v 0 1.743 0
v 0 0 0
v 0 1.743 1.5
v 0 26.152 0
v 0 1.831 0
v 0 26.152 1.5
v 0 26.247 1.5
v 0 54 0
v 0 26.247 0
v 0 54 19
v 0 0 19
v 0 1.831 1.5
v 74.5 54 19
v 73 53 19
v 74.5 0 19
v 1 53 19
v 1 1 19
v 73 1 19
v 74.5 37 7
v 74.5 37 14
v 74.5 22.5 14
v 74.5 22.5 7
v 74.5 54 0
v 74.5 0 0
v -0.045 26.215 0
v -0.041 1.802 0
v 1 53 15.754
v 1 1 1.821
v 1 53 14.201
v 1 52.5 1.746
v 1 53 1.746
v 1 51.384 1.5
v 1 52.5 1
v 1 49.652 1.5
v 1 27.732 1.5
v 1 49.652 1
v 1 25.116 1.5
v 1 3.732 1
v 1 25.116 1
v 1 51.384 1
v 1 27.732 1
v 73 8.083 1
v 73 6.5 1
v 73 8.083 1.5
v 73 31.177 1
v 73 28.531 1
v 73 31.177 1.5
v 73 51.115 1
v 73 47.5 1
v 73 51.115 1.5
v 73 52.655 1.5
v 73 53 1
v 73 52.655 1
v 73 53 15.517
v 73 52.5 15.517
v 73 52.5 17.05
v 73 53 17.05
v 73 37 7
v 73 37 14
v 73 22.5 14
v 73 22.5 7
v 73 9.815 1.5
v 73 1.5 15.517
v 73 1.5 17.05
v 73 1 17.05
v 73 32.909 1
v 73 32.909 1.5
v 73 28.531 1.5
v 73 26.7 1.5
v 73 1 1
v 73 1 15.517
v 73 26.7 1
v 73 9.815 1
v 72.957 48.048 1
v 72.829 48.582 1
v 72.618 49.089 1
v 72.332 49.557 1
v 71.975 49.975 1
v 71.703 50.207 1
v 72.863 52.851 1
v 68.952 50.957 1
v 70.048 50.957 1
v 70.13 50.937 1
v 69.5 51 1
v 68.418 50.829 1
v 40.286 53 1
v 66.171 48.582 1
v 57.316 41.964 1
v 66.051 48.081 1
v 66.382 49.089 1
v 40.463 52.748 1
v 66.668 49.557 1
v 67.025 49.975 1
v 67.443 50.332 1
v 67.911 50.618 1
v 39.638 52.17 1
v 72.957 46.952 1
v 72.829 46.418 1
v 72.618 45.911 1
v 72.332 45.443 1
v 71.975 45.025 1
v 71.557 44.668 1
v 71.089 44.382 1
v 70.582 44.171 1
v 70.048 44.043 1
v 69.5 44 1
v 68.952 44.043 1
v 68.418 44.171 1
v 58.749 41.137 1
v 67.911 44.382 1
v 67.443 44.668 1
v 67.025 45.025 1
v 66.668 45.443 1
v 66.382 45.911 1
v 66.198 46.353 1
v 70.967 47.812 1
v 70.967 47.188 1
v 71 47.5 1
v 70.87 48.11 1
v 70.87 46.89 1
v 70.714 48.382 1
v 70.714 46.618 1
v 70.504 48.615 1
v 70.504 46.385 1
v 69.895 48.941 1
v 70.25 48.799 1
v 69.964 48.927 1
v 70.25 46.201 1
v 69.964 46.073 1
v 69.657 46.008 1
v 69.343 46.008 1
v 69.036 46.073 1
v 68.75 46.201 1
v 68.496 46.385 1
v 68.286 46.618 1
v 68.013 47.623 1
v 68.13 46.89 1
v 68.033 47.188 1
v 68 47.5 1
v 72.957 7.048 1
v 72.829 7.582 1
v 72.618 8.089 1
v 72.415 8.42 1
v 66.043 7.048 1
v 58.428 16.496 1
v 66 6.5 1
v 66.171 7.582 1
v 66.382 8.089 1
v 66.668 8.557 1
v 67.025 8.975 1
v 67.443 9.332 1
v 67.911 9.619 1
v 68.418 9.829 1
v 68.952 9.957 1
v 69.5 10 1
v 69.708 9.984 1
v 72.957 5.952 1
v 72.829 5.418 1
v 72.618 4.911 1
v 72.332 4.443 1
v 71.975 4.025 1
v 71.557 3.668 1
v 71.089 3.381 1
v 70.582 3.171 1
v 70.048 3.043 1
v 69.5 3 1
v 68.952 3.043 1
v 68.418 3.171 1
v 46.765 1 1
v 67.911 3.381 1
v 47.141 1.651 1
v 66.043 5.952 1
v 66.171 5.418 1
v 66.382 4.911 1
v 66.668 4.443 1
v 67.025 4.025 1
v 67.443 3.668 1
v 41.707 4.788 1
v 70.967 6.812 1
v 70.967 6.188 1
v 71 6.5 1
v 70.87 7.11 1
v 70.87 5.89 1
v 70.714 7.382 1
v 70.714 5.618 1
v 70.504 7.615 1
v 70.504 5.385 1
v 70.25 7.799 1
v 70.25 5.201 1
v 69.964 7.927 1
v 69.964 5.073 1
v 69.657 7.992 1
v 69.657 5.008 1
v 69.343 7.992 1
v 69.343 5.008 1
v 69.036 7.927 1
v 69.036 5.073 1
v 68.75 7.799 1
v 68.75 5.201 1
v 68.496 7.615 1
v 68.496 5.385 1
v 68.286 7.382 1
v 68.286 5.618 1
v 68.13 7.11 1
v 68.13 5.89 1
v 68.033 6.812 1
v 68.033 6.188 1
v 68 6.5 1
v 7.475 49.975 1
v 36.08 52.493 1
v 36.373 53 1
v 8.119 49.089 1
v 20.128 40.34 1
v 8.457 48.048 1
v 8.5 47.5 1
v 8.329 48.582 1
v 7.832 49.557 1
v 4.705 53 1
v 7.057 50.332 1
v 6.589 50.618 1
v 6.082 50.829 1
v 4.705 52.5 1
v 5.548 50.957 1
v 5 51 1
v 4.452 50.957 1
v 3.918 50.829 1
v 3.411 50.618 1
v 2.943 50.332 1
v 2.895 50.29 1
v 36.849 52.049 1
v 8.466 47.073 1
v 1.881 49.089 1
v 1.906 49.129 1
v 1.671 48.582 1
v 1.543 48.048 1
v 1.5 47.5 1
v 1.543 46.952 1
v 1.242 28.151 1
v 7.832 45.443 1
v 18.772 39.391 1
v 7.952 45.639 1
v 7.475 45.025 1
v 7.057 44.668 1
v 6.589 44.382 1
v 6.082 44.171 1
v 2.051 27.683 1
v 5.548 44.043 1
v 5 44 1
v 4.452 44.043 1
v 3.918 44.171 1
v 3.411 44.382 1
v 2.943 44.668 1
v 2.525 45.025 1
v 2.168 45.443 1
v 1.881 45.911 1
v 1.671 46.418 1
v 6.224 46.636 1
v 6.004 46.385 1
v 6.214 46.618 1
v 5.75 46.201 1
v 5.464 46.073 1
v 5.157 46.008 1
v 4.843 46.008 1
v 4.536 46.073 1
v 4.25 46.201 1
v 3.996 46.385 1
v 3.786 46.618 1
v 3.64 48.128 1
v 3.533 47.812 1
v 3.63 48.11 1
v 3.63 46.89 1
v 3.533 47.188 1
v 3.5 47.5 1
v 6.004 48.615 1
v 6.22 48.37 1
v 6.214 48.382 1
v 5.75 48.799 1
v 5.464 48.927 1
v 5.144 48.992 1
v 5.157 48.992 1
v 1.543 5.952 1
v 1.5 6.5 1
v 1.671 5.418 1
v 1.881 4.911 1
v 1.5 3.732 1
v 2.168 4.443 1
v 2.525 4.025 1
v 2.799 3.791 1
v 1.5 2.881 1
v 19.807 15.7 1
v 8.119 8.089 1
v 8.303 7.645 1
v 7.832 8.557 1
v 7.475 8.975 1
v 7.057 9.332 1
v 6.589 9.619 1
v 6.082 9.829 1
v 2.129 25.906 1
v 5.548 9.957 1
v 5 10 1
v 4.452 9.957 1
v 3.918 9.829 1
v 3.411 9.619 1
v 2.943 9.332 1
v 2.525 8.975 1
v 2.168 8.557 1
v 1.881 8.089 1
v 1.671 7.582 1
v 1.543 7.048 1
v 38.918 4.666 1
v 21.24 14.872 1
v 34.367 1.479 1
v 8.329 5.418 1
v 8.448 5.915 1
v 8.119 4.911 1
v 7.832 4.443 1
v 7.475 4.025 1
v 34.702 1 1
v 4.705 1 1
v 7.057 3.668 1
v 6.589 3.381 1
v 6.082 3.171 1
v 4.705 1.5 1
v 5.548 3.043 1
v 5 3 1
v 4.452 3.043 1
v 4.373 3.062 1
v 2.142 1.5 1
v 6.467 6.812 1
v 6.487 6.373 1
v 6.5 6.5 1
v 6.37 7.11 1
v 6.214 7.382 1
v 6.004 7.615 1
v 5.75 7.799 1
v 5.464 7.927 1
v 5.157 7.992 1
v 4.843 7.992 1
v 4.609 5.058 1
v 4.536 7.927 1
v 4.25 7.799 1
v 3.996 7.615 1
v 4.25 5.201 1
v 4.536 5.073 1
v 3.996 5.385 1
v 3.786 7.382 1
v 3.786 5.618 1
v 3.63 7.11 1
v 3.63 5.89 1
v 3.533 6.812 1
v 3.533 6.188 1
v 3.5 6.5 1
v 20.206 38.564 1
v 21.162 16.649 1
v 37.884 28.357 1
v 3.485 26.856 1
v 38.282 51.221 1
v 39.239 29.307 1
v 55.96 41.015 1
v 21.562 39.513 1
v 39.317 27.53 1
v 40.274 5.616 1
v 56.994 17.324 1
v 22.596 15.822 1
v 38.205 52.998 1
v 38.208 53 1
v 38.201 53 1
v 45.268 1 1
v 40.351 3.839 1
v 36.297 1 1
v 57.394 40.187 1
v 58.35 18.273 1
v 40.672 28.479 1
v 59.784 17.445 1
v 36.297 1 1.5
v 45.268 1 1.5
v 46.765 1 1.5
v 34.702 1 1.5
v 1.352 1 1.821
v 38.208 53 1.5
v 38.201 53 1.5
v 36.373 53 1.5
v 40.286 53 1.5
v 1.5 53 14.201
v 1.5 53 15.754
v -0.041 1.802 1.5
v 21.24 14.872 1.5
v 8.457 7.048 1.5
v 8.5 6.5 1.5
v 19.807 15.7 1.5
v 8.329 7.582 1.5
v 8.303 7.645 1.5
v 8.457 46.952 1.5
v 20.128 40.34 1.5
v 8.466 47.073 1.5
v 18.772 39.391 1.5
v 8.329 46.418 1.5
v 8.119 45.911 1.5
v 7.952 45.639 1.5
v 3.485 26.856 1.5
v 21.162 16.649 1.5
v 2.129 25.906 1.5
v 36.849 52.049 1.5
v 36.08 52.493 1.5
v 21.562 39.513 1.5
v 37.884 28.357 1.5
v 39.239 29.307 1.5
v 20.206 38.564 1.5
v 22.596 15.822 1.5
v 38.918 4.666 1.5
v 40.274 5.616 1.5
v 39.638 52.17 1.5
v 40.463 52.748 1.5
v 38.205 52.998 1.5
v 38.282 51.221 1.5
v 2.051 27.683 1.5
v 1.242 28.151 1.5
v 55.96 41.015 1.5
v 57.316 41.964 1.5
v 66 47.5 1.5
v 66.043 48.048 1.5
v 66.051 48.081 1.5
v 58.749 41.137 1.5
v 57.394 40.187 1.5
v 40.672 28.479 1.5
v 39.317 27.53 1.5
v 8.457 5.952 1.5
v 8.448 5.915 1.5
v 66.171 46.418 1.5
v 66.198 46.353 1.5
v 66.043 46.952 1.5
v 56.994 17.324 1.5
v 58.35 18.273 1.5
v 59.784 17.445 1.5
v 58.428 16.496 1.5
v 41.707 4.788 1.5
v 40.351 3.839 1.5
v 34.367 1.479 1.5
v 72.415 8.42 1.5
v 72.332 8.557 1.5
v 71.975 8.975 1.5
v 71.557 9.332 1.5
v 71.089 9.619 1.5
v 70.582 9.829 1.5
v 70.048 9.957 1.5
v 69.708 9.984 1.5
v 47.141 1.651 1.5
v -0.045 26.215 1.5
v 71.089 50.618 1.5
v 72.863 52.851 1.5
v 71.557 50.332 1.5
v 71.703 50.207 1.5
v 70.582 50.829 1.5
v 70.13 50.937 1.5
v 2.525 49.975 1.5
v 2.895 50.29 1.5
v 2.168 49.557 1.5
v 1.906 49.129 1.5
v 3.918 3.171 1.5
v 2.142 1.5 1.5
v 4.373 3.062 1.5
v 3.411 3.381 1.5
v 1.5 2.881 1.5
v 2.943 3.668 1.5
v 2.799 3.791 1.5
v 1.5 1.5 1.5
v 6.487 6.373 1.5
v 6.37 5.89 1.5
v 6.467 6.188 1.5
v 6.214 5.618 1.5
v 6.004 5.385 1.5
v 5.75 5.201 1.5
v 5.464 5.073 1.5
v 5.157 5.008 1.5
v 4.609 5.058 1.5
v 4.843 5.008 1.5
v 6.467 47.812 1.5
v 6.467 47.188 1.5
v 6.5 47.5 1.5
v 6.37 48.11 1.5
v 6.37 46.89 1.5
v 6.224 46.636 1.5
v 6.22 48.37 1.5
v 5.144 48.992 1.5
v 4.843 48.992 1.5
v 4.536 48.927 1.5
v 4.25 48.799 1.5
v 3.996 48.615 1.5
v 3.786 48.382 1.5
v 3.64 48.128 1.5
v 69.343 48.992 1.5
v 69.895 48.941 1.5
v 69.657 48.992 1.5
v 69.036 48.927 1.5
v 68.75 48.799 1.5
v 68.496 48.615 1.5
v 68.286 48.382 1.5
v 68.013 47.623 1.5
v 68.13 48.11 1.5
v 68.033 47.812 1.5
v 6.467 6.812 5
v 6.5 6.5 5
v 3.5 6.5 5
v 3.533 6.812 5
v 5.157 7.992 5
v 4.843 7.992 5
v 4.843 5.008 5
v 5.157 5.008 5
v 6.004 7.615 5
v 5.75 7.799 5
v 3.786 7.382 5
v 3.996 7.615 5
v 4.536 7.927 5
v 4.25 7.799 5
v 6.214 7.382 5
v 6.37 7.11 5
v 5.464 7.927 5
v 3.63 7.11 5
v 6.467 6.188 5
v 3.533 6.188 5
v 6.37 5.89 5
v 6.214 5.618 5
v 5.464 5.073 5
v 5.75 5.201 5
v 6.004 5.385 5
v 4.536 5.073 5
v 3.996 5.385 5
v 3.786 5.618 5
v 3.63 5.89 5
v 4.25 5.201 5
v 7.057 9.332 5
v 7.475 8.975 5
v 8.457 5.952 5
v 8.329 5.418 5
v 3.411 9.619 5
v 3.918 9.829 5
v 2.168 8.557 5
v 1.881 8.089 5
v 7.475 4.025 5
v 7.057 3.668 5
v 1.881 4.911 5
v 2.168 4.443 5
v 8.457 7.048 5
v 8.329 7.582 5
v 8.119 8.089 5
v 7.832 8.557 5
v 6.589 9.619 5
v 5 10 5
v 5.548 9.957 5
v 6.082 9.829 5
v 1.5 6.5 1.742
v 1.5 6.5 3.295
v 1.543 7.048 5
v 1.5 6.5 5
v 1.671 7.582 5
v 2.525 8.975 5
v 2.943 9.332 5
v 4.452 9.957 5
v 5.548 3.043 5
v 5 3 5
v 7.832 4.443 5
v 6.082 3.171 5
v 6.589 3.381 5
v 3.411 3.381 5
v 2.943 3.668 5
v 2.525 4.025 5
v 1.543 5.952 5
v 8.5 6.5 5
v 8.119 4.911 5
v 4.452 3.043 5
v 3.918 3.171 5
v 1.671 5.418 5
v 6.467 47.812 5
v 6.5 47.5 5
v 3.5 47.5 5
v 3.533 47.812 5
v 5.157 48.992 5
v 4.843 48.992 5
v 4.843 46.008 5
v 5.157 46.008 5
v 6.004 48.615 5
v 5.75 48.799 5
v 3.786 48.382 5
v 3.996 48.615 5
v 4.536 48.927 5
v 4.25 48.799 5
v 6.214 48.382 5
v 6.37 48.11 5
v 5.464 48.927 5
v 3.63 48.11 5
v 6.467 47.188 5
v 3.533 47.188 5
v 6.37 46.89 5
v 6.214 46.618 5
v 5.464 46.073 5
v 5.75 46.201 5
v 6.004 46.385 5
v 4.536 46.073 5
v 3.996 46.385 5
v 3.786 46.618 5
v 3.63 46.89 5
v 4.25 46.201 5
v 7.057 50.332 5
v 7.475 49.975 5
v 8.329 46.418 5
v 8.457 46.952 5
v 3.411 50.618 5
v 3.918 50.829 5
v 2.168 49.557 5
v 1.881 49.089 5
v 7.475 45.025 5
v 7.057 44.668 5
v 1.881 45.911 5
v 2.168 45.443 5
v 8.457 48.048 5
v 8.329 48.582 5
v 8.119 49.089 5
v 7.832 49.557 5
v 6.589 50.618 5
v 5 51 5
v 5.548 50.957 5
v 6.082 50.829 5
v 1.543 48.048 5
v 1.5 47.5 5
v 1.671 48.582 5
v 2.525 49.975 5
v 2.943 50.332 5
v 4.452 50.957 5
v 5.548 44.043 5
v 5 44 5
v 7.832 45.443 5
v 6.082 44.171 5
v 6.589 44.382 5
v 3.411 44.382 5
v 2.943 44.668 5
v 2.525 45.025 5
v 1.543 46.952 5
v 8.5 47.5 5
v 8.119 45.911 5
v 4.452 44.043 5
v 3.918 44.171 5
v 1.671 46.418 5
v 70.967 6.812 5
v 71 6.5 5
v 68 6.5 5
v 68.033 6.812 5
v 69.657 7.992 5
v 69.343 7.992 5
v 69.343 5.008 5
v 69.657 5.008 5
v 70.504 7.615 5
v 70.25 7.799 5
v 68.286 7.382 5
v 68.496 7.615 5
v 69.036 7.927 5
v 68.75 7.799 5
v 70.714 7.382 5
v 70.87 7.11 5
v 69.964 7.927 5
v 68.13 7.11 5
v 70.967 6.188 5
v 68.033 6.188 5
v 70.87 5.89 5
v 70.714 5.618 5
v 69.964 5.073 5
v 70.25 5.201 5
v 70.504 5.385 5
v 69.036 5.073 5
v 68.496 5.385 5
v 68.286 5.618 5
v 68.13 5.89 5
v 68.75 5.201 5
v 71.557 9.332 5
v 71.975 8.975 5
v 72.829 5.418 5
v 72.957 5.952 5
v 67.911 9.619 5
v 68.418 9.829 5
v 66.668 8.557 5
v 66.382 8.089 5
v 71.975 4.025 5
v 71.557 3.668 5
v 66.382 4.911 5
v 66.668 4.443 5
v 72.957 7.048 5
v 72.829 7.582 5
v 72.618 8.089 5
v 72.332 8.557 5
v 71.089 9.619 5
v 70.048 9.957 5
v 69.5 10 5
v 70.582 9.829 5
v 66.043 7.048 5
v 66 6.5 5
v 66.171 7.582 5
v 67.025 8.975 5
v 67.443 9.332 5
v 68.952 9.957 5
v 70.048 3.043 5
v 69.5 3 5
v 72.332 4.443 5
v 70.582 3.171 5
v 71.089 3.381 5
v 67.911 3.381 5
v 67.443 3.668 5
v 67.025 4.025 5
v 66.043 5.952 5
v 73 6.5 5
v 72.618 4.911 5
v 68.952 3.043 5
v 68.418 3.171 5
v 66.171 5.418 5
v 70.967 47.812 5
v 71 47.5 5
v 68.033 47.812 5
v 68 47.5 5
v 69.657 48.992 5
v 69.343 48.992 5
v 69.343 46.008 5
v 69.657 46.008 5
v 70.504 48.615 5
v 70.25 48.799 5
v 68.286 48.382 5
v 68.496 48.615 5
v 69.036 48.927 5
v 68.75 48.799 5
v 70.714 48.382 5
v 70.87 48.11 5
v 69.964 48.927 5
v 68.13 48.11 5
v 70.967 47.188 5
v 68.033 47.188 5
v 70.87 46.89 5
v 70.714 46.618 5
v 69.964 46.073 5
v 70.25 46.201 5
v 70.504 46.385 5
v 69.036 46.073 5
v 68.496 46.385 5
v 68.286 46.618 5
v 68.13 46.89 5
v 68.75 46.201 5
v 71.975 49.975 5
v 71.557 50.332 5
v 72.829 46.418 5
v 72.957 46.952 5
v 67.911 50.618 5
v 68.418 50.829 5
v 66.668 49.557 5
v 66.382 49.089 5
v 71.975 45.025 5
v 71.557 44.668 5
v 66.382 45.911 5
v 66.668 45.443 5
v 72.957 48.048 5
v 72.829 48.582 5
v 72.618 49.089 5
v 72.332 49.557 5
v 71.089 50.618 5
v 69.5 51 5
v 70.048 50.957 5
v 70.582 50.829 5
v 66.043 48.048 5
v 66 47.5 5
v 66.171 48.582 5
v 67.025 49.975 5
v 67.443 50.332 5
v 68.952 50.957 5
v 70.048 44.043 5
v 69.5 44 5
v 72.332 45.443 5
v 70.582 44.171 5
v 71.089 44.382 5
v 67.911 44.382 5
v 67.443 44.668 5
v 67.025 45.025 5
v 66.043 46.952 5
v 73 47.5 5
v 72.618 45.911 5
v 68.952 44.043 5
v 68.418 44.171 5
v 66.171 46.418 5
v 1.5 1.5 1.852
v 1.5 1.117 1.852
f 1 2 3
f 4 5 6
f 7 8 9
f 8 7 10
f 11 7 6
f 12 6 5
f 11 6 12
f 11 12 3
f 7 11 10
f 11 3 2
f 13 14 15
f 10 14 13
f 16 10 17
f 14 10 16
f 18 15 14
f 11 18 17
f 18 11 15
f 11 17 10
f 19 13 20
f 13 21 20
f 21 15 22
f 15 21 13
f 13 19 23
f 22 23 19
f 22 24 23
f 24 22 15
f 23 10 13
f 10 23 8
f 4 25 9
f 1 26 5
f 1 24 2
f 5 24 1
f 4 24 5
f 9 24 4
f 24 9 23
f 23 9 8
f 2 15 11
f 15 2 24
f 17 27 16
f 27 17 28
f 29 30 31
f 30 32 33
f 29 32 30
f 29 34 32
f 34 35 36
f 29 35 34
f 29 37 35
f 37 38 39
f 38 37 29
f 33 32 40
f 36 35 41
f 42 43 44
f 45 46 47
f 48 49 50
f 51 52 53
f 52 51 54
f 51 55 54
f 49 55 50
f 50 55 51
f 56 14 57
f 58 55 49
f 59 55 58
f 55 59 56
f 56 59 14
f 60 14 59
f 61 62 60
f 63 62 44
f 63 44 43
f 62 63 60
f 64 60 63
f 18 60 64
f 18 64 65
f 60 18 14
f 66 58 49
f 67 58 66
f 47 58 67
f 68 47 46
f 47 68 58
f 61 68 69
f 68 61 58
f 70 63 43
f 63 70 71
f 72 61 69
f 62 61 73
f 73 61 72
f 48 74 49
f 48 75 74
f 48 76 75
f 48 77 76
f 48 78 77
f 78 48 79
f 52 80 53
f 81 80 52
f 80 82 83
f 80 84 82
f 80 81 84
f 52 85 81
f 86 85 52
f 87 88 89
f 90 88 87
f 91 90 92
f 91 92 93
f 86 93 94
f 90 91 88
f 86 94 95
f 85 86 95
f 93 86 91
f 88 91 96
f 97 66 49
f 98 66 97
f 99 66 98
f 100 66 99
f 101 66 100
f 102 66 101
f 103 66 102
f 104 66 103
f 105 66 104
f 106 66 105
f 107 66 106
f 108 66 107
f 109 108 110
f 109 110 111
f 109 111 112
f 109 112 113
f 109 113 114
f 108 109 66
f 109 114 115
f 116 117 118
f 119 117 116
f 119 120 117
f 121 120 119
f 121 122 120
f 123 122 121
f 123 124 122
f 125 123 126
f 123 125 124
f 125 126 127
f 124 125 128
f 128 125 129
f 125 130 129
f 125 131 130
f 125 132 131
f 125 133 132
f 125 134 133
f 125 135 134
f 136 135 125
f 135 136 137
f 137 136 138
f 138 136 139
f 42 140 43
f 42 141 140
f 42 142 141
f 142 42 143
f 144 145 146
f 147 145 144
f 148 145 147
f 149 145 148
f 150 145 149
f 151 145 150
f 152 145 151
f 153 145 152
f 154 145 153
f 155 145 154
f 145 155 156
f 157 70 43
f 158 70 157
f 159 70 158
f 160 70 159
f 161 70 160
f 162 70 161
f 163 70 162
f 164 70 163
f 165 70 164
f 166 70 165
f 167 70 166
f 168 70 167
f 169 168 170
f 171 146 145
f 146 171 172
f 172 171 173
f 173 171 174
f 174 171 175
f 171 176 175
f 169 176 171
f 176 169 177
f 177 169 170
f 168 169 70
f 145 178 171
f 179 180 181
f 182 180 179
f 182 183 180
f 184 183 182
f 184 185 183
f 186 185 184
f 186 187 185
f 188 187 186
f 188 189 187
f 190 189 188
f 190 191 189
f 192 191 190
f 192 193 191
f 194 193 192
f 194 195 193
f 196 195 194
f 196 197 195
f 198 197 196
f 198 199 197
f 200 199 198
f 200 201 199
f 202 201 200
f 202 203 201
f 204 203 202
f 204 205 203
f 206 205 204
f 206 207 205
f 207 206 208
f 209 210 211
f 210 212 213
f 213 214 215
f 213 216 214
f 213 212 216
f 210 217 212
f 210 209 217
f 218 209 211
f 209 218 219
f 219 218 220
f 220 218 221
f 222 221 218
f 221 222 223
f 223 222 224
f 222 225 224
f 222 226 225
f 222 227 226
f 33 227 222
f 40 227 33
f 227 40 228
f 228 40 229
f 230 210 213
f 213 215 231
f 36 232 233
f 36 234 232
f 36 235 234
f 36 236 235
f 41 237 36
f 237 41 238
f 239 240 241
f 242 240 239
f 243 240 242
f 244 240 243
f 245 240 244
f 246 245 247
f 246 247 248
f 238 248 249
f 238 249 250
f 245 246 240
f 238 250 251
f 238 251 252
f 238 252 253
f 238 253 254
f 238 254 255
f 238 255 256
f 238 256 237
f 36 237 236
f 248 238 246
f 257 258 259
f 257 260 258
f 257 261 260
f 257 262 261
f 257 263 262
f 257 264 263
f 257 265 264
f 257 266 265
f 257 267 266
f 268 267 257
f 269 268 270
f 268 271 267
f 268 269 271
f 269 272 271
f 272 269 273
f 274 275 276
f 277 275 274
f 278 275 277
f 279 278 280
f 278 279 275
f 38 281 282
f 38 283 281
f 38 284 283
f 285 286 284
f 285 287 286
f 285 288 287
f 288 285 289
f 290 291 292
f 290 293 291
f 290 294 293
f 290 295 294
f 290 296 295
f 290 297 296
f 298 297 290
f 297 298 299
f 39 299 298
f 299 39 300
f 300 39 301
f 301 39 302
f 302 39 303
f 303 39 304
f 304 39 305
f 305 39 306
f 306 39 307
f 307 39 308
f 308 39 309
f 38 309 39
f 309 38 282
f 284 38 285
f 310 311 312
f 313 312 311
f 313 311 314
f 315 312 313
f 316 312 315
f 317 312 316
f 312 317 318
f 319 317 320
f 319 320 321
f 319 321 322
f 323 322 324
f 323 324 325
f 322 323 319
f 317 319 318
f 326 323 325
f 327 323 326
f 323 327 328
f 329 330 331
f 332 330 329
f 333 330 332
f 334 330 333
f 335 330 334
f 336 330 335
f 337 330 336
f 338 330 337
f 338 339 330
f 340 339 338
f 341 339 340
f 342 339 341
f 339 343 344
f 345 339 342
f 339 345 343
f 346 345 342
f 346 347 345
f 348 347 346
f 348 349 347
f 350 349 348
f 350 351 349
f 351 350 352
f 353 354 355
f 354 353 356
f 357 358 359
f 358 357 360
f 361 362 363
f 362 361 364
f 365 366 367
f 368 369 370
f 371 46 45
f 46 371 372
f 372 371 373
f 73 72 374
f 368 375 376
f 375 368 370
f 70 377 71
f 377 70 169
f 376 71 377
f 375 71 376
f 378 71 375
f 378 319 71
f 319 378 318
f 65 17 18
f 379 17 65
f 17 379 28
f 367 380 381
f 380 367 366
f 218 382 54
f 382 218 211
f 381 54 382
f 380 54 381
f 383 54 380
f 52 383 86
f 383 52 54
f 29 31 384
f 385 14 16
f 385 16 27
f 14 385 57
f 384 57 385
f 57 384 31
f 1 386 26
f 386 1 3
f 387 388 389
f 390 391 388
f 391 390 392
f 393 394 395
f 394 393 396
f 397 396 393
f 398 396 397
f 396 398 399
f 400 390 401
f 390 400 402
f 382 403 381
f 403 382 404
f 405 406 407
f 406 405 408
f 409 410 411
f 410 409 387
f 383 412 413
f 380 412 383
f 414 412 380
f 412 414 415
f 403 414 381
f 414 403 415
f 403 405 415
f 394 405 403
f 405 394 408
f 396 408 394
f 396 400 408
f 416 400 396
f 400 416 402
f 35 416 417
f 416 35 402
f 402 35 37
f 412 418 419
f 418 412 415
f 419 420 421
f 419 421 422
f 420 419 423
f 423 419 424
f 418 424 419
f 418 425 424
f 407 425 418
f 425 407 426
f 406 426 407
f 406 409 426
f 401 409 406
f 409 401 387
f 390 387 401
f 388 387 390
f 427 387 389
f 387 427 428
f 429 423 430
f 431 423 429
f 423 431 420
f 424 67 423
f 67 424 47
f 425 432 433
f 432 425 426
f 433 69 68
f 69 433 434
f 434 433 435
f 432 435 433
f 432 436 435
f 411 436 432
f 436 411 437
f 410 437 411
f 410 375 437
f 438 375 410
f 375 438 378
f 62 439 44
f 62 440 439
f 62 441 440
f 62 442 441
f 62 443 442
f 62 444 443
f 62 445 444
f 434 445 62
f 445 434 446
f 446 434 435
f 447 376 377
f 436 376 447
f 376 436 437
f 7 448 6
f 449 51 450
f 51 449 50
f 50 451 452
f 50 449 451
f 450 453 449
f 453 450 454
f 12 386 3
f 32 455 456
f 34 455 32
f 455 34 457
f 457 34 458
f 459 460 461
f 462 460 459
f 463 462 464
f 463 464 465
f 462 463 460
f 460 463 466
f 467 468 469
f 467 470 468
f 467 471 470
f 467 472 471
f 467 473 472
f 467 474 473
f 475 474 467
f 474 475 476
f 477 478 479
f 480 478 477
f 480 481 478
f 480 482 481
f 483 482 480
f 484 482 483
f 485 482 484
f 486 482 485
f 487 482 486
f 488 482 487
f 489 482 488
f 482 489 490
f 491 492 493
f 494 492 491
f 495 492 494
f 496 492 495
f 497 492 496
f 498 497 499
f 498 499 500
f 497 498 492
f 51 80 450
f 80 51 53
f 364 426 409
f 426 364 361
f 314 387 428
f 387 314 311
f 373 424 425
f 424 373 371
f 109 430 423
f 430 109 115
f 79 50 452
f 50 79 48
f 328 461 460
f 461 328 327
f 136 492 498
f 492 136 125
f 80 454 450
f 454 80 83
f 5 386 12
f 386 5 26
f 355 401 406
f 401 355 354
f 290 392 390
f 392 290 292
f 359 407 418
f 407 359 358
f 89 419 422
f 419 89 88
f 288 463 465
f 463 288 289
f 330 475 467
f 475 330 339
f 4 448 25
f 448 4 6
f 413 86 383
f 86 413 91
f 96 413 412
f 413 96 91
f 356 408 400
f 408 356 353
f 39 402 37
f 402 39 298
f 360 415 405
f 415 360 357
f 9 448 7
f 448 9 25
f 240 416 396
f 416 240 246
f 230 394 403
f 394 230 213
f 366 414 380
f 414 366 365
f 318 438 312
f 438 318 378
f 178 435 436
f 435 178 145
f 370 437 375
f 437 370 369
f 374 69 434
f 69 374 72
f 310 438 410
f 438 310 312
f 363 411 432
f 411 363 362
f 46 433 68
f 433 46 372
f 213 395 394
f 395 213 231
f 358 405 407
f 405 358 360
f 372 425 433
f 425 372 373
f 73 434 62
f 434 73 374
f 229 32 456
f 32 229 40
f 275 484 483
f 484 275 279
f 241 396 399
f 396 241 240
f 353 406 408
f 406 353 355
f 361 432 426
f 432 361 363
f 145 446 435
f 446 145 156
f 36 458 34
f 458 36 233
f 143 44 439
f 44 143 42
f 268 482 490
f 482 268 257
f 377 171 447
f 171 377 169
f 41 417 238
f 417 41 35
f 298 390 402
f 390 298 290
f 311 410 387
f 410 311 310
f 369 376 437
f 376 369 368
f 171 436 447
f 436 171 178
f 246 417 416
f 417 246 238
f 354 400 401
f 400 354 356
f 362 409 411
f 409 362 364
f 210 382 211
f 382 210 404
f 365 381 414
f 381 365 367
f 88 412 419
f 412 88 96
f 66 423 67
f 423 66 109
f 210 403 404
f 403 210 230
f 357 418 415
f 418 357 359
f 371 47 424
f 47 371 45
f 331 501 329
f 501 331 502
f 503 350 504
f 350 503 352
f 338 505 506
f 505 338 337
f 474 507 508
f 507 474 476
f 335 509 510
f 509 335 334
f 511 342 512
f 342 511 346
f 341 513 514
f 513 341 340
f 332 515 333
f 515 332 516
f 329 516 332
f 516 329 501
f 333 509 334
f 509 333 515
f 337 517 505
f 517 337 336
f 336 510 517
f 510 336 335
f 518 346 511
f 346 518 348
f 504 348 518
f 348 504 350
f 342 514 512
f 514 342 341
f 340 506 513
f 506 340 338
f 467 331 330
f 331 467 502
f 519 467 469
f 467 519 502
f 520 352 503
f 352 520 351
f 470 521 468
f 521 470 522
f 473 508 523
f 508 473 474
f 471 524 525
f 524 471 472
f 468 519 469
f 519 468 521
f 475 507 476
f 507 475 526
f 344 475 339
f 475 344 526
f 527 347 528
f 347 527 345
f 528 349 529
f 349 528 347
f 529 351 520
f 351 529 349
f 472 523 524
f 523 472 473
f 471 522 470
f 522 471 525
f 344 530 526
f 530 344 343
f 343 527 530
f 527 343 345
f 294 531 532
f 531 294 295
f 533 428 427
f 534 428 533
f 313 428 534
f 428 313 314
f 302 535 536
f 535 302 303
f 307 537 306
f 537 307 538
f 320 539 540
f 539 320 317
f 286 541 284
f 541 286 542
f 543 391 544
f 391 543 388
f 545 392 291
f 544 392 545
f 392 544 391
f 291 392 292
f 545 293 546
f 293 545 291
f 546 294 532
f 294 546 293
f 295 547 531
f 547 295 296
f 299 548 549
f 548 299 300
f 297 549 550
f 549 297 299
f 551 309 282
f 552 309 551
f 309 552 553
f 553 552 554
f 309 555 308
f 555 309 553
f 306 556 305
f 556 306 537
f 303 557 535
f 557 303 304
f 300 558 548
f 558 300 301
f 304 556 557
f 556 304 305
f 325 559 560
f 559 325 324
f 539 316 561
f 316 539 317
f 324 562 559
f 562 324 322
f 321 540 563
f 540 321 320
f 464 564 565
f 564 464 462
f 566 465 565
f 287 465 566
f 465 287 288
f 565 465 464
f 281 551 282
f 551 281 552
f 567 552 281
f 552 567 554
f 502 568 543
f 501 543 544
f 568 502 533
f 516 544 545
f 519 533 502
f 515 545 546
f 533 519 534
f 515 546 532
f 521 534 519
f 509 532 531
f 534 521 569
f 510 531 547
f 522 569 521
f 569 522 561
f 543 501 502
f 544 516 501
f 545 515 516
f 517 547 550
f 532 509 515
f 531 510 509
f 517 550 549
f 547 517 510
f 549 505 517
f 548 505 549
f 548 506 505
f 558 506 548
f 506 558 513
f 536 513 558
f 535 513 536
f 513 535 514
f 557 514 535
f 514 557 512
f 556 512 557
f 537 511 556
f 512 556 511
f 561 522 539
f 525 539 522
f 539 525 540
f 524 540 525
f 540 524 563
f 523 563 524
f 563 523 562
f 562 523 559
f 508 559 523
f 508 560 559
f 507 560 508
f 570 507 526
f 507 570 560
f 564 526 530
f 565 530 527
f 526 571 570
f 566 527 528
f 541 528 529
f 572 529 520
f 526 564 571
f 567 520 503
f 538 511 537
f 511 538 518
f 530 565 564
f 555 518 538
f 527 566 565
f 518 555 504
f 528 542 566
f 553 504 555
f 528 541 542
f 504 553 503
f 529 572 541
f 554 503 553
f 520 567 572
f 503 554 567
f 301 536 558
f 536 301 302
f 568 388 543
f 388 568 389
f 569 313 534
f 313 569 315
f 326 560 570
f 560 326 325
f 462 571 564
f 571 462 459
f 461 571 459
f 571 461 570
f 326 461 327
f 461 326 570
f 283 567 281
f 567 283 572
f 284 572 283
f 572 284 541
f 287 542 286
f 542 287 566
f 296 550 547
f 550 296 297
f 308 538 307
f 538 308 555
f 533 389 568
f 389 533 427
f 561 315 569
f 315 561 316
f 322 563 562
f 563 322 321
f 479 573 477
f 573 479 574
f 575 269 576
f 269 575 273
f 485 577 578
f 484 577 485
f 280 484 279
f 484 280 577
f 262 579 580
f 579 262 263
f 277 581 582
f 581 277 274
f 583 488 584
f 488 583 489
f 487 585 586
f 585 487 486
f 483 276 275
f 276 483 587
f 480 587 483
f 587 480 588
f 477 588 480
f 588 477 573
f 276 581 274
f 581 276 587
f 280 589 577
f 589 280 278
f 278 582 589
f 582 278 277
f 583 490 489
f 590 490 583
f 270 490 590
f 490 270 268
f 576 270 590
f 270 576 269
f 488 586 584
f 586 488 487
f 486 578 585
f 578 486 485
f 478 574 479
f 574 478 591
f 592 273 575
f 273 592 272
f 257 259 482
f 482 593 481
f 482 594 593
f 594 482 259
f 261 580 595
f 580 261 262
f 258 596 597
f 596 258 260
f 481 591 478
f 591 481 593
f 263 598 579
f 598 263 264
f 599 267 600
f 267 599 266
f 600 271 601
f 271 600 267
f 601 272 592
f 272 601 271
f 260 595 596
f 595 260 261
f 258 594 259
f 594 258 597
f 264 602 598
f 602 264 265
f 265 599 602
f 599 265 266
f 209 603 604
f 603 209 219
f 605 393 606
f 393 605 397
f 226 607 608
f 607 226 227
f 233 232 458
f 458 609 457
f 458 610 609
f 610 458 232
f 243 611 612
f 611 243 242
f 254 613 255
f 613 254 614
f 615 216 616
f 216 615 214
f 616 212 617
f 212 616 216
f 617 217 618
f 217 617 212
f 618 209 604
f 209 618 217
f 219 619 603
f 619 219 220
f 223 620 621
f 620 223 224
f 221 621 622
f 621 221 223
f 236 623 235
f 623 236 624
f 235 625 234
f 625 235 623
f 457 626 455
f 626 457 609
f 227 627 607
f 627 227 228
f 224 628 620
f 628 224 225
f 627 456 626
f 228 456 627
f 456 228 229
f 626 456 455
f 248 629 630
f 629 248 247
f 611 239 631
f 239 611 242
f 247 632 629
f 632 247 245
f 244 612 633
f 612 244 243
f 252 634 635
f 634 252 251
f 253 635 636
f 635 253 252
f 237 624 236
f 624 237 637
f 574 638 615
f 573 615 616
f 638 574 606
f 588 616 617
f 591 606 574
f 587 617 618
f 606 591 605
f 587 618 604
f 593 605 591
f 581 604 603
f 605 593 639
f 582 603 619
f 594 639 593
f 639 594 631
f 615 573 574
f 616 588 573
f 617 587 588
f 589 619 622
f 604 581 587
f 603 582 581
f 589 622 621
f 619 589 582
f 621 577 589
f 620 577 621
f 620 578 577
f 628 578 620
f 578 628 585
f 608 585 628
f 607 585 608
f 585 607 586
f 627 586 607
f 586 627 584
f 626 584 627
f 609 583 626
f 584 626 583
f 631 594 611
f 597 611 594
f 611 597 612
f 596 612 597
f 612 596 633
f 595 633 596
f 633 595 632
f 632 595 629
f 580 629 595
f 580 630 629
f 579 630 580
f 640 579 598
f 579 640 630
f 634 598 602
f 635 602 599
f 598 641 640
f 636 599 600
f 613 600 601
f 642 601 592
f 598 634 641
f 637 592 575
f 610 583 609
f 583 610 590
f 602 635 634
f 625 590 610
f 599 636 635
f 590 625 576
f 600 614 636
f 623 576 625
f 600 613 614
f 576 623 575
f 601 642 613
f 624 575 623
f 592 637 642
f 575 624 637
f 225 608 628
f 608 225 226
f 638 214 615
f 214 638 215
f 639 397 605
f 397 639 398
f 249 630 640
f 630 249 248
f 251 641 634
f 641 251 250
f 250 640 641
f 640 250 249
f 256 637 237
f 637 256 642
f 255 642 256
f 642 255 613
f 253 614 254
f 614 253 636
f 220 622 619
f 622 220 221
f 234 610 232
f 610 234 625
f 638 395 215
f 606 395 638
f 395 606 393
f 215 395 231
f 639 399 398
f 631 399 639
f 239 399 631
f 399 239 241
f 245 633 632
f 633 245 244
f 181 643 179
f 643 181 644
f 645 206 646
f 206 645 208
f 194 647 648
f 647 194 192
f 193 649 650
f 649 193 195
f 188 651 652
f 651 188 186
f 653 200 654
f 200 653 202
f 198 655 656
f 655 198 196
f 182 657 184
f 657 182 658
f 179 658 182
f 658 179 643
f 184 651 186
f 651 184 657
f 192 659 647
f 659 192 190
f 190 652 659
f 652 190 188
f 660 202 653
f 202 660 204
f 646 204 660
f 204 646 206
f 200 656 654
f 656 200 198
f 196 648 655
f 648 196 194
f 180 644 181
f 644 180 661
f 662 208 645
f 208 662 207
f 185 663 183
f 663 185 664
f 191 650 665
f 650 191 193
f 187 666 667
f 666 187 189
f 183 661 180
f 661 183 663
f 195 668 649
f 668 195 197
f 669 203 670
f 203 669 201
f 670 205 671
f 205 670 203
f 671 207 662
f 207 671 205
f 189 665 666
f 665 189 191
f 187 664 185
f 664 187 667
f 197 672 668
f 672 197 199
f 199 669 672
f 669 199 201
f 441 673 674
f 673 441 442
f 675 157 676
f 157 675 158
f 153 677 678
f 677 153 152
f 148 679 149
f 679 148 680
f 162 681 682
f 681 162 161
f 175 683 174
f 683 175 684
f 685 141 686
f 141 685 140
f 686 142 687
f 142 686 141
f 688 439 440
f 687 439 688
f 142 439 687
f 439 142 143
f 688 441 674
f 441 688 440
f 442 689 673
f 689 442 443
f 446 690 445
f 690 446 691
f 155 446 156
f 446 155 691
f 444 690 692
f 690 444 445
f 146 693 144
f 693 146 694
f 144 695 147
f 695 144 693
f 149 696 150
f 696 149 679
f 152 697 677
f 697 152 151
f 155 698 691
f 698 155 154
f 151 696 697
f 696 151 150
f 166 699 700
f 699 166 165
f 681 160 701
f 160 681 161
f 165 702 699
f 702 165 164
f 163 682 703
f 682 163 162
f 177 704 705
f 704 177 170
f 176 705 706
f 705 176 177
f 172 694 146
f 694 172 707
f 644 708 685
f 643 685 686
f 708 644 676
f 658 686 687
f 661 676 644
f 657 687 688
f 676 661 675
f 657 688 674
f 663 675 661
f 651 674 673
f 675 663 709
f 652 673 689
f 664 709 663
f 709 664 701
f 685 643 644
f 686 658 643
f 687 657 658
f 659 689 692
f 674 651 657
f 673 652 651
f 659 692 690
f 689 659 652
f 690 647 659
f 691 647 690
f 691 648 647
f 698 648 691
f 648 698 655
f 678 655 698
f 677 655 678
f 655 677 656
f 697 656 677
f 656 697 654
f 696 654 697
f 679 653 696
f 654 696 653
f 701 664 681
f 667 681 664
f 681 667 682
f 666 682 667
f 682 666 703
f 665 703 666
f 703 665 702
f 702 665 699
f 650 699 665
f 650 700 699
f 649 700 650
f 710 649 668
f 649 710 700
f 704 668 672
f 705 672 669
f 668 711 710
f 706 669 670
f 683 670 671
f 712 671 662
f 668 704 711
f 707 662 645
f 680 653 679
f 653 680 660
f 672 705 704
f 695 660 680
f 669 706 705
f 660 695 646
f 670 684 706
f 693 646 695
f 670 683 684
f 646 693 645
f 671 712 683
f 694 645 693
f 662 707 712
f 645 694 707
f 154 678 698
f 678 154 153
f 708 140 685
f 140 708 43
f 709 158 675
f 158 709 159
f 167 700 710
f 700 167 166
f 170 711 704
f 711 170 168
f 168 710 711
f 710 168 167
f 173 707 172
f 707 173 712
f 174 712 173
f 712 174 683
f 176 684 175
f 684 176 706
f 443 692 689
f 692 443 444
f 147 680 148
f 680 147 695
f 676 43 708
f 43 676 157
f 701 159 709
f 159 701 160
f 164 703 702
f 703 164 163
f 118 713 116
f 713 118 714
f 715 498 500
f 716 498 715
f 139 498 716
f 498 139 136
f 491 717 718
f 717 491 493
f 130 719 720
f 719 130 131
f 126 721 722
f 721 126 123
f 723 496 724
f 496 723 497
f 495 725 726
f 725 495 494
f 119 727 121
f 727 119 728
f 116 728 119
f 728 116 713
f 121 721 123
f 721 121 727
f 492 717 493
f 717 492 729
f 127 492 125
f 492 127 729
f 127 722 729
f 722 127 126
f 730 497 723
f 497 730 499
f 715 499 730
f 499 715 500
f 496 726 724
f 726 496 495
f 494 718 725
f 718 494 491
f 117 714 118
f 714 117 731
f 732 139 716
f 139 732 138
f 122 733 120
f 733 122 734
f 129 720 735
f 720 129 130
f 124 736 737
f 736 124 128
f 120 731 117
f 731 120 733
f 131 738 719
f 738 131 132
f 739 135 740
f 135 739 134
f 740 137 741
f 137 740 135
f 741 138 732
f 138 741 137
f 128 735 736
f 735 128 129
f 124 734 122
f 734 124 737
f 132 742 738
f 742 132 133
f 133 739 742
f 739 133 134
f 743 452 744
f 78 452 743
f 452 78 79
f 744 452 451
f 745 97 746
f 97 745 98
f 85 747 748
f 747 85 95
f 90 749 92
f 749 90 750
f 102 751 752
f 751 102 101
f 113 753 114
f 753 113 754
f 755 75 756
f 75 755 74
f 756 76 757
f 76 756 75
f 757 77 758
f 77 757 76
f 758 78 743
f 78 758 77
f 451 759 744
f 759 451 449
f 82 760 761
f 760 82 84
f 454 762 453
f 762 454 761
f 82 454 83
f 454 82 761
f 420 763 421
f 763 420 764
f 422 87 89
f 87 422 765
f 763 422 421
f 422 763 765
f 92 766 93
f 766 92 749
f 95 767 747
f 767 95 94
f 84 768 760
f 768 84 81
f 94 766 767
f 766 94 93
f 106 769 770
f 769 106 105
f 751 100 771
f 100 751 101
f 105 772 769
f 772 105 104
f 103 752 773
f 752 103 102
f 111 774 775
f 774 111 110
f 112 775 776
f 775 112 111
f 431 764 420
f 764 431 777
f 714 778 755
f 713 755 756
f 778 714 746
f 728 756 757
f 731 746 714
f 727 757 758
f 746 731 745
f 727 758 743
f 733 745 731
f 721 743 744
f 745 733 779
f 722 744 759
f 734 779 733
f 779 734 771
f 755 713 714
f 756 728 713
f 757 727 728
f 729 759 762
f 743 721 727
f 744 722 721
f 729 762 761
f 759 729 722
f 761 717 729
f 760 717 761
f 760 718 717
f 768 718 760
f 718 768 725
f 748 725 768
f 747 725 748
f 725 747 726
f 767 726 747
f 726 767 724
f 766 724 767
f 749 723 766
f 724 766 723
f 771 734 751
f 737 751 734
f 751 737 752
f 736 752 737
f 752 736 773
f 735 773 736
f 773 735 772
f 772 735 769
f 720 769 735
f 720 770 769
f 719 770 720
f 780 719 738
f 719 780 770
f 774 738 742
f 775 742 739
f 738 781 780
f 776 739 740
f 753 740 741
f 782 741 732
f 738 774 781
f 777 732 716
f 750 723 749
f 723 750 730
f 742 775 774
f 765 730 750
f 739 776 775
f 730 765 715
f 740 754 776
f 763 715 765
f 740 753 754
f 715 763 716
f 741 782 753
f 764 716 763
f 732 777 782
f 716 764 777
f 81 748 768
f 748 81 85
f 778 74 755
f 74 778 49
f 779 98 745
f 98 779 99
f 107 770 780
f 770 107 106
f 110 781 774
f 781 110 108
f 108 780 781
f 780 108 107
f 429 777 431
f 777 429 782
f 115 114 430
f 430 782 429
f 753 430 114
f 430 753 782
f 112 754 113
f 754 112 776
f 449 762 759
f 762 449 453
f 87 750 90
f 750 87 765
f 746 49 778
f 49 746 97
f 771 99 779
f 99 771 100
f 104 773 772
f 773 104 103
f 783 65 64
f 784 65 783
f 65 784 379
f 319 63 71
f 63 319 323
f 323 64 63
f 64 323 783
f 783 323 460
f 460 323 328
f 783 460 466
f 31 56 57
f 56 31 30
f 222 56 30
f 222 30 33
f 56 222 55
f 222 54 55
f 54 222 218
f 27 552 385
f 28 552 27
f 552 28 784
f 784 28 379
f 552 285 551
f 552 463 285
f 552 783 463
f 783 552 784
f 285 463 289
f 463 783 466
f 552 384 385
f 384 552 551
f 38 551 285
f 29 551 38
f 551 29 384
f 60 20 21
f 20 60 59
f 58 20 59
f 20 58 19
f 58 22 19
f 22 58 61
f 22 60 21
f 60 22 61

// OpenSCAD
spodniKrabicka();


// spodni krabicka
module spodniKrabicka(){
    difference(){
        union() {
            spodniCast();
            translate([5,6.5,1]) sloupekSroubku();
            translate([5,47.5,1]) sloupekSroubku();
            
            translate([69.5,6.5,1]) sloupekSroubku();
            translate([69.5,47.5,1]) sloupekSroubku();
        }
        usbProstup();
    }
}

module usbProstup(){
    color("Chartreuse")
    translate([72,22.5,7]) cube([3,14.5,7]);
}

module spodniCast(){
    difference() {
        cube([74.5,54,19]);
        translate([1,1,1]) cube([72,52,19]);
    }
    vyztuhyDna();
    vyztuhaSpodniKrabicky();
}

module vyztuhyDna() {
    color("HotPink")
    rotate([0,0,35]) {
        translate([1,0,0]) cube([89,1.5,1.5]);
        translate([15,20,0]) cube([48.4,1.5,1.5]);
        translate([29,-20,0]) cube([47.5,1.5,1.5]);
    }
    
    color("HotPink")
    rotate([0,0,150]) {
        translate([-60,-45,0]) cube([85,1.5,1.5]);
        translate([-40,-25,0]) cube([53,1.5,1.5]);
        translate([-48,-65,0]) cube([43,1.5,1.5]);
    }
}

module vyztuhaSpodniKrabicky() {
    color("SpringGreen")
    rotate([0,-12,0]) {
        translate([0.5,0,0]) cube([75.5,1.5,1.5]);
    }
    color("SpringGreen")
    rotate([0,-12,0]) {
        translate([0.5,52.5,0]) cube([75.5,1.5,1.5]);
    }
    color("SpringGreen")
    rotate([0,-15,90]) {
        translate([0.5,-1.5,0]) cube([55,1.5,1.5]);
    }
}

module sloupekSroubku() {
    color("MediumVioletRed")
    difference() {
        cylinder(h=(4),d=(7),$fn=40,center=false);
        sroubek();
    }
}

module sroubek() {
    hlavickaSroubku();
    teloSroubku();
}

module hlavickaSroubku() {
    color("DeepPink")
    translate([0,0,19]) cylinder(h=4,d=6,$fn=30,center=false);
}

module teloSroubku() {
    color("HotPink")
    cylinder(h=19,d=3,$fn=30,center=false);
}
